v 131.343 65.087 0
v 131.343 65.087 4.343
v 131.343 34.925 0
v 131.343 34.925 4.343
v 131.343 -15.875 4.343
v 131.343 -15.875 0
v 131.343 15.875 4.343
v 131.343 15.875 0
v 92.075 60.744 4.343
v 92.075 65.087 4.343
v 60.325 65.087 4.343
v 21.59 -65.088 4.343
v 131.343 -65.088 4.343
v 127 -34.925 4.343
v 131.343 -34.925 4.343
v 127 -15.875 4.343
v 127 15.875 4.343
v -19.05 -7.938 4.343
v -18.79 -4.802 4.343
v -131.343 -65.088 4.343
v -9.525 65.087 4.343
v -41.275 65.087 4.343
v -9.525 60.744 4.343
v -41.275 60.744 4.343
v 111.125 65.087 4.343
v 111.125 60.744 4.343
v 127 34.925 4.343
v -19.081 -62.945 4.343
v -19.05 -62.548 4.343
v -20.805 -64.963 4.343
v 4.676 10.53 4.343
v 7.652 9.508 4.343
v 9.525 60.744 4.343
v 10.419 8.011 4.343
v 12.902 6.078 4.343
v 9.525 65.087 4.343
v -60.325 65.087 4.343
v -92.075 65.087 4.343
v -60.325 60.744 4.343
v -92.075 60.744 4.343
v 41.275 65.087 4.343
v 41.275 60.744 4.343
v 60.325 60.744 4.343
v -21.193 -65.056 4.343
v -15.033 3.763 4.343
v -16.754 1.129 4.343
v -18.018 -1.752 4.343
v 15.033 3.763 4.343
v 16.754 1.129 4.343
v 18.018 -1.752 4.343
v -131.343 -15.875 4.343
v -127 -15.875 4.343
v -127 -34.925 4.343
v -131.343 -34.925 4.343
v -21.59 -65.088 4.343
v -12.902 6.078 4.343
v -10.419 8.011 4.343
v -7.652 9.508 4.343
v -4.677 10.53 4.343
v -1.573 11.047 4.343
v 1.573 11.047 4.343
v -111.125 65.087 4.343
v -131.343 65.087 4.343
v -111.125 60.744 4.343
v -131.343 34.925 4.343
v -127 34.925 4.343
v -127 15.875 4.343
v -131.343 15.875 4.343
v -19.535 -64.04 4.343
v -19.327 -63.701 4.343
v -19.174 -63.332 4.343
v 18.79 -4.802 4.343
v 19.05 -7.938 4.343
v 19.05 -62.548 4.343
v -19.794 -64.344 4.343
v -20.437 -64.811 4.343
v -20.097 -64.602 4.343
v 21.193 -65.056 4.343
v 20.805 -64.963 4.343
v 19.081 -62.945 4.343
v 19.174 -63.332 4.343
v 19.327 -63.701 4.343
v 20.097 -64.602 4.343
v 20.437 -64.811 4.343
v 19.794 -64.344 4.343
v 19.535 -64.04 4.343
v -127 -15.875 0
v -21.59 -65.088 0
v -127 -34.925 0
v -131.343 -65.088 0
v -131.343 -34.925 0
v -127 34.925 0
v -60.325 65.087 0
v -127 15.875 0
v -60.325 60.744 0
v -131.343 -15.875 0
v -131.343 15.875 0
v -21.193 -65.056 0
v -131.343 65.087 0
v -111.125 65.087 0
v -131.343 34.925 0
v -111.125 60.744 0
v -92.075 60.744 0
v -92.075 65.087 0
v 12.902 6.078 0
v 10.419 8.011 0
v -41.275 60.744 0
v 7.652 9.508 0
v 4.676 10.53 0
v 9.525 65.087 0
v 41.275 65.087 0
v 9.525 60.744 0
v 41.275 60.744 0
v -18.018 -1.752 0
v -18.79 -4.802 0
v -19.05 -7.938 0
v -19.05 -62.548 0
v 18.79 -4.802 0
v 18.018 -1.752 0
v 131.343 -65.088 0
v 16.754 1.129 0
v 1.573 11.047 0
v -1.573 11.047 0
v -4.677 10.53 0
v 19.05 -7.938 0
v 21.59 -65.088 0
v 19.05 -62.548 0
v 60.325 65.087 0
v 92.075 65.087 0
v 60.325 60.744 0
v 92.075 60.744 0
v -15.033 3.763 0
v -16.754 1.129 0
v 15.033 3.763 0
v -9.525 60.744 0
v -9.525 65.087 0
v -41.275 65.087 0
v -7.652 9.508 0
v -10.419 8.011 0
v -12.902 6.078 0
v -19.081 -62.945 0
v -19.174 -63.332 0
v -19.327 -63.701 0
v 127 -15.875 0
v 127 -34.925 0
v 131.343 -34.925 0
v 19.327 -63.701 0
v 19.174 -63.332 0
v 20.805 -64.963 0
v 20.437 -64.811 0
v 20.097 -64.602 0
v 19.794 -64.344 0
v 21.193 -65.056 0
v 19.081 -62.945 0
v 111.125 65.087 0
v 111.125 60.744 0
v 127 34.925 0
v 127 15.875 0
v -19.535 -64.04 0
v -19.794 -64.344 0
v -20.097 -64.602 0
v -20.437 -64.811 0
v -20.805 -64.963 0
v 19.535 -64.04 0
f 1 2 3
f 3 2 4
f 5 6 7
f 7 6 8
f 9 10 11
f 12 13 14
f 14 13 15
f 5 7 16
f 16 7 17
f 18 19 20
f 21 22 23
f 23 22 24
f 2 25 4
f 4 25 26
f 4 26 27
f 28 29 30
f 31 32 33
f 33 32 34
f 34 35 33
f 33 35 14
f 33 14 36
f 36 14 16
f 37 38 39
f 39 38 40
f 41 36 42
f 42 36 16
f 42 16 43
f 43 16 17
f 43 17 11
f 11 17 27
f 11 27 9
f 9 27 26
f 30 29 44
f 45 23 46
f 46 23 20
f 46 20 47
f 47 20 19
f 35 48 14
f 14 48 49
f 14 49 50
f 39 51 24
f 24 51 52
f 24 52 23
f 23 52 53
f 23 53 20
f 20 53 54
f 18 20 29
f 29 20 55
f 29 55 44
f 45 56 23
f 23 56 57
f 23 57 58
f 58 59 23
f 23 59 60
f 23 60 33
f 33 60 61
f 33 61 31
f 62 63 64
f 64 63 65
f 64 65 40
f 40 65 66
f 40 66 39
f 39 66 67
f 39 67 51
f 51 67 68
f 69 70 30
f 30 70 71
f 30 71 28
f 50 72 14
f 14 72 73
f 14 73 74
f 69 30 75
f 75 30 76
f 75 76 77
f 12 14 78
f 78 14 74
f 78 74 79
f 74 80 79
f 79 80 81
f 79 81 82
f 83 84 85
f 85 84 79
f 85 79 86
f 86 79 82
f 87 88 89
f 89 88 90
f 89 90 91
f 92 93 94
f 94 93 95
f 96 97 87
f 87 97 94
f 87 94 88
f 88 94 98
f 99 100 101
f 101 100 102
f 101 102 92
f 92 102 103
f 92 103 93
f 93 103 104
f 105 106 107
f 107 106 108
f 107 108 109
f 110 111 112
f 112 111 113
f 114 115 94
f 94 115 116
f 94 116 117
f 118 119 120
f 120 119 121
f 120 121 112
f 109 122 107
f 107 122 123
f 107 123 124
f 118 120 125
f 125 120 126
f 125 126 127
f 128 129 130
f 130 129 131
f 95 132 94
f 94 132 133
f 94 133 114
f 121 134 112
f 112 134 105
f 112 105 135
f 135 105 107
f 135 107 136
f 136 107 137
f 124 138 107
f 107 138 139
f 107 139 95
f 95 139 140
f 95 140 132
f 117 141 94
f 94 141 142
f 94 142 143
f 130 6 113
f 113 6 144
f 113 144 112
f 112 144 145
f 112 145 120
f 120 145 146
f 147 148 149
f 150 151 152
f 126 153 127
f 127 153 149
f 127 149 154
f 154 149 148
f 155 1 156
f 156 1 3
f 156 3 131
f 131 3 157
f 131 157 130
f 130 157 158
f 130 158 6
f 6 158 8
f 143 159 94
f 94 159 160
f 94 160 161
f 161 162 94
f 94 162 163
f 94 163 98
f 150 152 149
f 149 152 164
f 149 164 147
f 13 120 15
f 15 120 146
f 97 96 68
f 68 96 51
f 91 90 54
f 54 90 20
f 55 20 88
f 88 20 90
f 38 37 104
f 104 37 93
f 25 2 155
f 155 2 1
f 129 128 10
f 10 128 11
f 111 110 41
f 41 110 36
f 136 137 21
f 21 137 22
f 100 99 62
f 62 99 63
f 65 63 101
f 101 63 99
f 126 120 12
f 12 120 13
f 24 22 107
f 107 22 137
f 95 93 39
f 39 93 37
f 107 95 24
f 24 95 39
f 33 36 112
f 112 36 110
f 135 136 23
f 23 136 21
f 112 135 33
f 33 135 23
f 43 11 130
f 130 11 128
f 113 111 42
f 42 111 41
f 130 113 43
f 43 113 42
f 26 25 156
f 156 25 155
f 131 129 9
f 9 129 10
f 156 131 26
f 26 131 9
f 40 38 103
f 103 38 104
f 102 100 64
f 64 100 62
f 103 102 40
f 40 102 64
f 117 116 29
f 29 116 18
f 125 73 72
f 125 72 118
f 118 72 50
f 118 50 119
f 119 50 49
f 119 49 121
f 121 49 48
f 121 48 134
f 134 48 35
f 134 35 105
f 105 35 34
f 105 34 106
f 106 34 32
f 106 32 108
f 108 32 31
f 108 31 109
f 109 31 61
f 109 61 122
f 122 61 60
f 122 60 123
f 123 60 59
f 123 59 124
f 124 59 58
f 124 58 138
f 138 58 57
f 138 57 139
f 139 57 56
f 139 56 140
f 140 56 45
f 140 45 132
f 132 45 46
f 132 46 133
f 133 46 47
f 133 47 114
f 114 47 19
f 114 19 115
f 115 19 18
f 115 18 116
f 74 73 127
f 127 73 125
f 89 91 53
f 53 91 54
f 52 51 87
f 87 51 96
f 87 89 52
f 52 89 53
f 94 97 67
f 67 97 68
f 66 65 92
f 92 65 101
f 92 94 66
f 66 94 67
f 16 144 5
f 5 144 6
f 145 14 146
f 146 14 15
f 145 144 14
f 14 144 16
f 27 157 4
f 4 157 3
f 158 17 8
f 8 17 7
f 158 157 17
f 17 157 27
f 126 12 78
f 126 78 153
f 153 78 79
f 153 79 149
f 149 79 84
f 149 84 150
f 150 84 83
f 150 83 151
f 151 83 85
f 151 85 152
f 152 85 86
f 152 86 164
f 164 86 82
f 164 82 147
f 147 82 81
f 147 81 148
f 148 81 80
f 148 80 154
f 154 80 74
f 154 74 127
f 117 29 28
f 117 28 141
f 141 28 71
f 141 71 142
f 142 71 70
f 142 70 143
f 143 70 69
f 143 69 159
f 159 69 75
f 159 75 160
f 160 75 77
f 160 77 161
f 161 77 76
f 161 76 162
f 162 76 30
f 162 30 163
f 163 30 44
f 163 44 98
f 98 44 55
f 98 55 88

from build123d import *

# Parameters (mm, degrees)
SKETCH1_W           = 262.6868
SKETCH1_H           = 130.175
BOSS_EXTRUDE1_DEPTH = 4.3434
SKETCH2_W           = 19.05
SKETCH2_H           = 8.6868
CUT_EXTRUDE1_DEPTH  = 147.650388692
CUT_EXTRUDE2_DEPTH  = 147.650388692
SKETCH3_W           = 8.6868
SKETCH3_H           = 19.05
CUT_EXTRUDE3_DEPTH  = 147.650388692
FILLET1_R           = 2.54


with BuildPart() as part:
    # Sketch1 → Boss-Extrude1 (new body)
    with BuildSketch(Plane.XY):
        Rectangle(SKETCH1_W, SKETCH1_H)
    extrude(amount=BOSS_EXTRUDE1_DEPTH)

    # Sketch2 → Cut-Extrude1 (cut, through all)
    with BuildSketch(Plane.XY.offset(4.3434)):
        with Locations((-50.8, 65.0875)):
            Rectangle(SKETCH2_W, SKETCH2_H)
        with Locations((0, 65.0875)):
            Rectangle(SKETCH2_W, SKETCH2_H)
        with Locations((50.8, 65.0875)):
            Rectangle(SKETCH2_W, SKETCH2_H)
        with Locations((101.6, 65.0875)):
            Rectangle(SKETCH2_W, SKETCH2_H)
        with Locations((-101.6, 65.0875)):
            Rectangle(SKETCH2_W, SKETCH2_H)
    extrude(amount=-CUT_EXTRUDE1_DEPTH, mode=Mode.SUBTRACT)

    # Sketch4 → Cut-Extrude2 (cut, through all)
    with BuildSketch(Plane.XY.offset(4.3434)):
        with BuildLine():
            Line((-19.05, -65.0875), (-19.05, -7.9375))
            ThreePointArc((-19.05, -7.9375), (0, 11.1125), (19.05, -7.9375))
            Line((19.05, -7.9375), (19.05, -65.0875))
            ThreePointArc((19.05, -65.0875), (0, -84.1375), (-19.05, -65.0875))
        make_face()
    extrude(amount=-CUT_EXTRUDE2_DEPTH, mode=Mode.SUBTRACT)

    # Sketch3 → Cut-Extrude3 (cut, through all)
    with BuildSketch(Plane.XY.offset(4.3434)):
        with Locations((-131.3434, -25.4)):
            Rectangle(SKETCH3_W, SKETCH3_H)
        with Locations((-131.3434, 25.4)):
            Rectangle(SKETCH3_W, SKETCH3_H)
    cut_extrude3 = extrude(amount=-CUT_EXTRUDE3_DEPTH, mode=Mode.SUBTRACT)

    # Mirror1: Cut-Extrude3 across plane
    add(cut_extrude3.mirror(Plane(origin=(0, 0, 0), x_dir=(0, 0, 1), z_dir=(1, 0, 0))), mode=Mode.SUBTRACT)

    # Fillet1
    fillet1_edges = [part.edges().sort_by_distance(p)[0] for p in [
        (19.05, -65.0875, 2.1717),
        (-19.05, -65.0875, 2.1717),
    ]]
    fillet(fillet1_edges, radius=FILLET1_R)


solid = part.part
